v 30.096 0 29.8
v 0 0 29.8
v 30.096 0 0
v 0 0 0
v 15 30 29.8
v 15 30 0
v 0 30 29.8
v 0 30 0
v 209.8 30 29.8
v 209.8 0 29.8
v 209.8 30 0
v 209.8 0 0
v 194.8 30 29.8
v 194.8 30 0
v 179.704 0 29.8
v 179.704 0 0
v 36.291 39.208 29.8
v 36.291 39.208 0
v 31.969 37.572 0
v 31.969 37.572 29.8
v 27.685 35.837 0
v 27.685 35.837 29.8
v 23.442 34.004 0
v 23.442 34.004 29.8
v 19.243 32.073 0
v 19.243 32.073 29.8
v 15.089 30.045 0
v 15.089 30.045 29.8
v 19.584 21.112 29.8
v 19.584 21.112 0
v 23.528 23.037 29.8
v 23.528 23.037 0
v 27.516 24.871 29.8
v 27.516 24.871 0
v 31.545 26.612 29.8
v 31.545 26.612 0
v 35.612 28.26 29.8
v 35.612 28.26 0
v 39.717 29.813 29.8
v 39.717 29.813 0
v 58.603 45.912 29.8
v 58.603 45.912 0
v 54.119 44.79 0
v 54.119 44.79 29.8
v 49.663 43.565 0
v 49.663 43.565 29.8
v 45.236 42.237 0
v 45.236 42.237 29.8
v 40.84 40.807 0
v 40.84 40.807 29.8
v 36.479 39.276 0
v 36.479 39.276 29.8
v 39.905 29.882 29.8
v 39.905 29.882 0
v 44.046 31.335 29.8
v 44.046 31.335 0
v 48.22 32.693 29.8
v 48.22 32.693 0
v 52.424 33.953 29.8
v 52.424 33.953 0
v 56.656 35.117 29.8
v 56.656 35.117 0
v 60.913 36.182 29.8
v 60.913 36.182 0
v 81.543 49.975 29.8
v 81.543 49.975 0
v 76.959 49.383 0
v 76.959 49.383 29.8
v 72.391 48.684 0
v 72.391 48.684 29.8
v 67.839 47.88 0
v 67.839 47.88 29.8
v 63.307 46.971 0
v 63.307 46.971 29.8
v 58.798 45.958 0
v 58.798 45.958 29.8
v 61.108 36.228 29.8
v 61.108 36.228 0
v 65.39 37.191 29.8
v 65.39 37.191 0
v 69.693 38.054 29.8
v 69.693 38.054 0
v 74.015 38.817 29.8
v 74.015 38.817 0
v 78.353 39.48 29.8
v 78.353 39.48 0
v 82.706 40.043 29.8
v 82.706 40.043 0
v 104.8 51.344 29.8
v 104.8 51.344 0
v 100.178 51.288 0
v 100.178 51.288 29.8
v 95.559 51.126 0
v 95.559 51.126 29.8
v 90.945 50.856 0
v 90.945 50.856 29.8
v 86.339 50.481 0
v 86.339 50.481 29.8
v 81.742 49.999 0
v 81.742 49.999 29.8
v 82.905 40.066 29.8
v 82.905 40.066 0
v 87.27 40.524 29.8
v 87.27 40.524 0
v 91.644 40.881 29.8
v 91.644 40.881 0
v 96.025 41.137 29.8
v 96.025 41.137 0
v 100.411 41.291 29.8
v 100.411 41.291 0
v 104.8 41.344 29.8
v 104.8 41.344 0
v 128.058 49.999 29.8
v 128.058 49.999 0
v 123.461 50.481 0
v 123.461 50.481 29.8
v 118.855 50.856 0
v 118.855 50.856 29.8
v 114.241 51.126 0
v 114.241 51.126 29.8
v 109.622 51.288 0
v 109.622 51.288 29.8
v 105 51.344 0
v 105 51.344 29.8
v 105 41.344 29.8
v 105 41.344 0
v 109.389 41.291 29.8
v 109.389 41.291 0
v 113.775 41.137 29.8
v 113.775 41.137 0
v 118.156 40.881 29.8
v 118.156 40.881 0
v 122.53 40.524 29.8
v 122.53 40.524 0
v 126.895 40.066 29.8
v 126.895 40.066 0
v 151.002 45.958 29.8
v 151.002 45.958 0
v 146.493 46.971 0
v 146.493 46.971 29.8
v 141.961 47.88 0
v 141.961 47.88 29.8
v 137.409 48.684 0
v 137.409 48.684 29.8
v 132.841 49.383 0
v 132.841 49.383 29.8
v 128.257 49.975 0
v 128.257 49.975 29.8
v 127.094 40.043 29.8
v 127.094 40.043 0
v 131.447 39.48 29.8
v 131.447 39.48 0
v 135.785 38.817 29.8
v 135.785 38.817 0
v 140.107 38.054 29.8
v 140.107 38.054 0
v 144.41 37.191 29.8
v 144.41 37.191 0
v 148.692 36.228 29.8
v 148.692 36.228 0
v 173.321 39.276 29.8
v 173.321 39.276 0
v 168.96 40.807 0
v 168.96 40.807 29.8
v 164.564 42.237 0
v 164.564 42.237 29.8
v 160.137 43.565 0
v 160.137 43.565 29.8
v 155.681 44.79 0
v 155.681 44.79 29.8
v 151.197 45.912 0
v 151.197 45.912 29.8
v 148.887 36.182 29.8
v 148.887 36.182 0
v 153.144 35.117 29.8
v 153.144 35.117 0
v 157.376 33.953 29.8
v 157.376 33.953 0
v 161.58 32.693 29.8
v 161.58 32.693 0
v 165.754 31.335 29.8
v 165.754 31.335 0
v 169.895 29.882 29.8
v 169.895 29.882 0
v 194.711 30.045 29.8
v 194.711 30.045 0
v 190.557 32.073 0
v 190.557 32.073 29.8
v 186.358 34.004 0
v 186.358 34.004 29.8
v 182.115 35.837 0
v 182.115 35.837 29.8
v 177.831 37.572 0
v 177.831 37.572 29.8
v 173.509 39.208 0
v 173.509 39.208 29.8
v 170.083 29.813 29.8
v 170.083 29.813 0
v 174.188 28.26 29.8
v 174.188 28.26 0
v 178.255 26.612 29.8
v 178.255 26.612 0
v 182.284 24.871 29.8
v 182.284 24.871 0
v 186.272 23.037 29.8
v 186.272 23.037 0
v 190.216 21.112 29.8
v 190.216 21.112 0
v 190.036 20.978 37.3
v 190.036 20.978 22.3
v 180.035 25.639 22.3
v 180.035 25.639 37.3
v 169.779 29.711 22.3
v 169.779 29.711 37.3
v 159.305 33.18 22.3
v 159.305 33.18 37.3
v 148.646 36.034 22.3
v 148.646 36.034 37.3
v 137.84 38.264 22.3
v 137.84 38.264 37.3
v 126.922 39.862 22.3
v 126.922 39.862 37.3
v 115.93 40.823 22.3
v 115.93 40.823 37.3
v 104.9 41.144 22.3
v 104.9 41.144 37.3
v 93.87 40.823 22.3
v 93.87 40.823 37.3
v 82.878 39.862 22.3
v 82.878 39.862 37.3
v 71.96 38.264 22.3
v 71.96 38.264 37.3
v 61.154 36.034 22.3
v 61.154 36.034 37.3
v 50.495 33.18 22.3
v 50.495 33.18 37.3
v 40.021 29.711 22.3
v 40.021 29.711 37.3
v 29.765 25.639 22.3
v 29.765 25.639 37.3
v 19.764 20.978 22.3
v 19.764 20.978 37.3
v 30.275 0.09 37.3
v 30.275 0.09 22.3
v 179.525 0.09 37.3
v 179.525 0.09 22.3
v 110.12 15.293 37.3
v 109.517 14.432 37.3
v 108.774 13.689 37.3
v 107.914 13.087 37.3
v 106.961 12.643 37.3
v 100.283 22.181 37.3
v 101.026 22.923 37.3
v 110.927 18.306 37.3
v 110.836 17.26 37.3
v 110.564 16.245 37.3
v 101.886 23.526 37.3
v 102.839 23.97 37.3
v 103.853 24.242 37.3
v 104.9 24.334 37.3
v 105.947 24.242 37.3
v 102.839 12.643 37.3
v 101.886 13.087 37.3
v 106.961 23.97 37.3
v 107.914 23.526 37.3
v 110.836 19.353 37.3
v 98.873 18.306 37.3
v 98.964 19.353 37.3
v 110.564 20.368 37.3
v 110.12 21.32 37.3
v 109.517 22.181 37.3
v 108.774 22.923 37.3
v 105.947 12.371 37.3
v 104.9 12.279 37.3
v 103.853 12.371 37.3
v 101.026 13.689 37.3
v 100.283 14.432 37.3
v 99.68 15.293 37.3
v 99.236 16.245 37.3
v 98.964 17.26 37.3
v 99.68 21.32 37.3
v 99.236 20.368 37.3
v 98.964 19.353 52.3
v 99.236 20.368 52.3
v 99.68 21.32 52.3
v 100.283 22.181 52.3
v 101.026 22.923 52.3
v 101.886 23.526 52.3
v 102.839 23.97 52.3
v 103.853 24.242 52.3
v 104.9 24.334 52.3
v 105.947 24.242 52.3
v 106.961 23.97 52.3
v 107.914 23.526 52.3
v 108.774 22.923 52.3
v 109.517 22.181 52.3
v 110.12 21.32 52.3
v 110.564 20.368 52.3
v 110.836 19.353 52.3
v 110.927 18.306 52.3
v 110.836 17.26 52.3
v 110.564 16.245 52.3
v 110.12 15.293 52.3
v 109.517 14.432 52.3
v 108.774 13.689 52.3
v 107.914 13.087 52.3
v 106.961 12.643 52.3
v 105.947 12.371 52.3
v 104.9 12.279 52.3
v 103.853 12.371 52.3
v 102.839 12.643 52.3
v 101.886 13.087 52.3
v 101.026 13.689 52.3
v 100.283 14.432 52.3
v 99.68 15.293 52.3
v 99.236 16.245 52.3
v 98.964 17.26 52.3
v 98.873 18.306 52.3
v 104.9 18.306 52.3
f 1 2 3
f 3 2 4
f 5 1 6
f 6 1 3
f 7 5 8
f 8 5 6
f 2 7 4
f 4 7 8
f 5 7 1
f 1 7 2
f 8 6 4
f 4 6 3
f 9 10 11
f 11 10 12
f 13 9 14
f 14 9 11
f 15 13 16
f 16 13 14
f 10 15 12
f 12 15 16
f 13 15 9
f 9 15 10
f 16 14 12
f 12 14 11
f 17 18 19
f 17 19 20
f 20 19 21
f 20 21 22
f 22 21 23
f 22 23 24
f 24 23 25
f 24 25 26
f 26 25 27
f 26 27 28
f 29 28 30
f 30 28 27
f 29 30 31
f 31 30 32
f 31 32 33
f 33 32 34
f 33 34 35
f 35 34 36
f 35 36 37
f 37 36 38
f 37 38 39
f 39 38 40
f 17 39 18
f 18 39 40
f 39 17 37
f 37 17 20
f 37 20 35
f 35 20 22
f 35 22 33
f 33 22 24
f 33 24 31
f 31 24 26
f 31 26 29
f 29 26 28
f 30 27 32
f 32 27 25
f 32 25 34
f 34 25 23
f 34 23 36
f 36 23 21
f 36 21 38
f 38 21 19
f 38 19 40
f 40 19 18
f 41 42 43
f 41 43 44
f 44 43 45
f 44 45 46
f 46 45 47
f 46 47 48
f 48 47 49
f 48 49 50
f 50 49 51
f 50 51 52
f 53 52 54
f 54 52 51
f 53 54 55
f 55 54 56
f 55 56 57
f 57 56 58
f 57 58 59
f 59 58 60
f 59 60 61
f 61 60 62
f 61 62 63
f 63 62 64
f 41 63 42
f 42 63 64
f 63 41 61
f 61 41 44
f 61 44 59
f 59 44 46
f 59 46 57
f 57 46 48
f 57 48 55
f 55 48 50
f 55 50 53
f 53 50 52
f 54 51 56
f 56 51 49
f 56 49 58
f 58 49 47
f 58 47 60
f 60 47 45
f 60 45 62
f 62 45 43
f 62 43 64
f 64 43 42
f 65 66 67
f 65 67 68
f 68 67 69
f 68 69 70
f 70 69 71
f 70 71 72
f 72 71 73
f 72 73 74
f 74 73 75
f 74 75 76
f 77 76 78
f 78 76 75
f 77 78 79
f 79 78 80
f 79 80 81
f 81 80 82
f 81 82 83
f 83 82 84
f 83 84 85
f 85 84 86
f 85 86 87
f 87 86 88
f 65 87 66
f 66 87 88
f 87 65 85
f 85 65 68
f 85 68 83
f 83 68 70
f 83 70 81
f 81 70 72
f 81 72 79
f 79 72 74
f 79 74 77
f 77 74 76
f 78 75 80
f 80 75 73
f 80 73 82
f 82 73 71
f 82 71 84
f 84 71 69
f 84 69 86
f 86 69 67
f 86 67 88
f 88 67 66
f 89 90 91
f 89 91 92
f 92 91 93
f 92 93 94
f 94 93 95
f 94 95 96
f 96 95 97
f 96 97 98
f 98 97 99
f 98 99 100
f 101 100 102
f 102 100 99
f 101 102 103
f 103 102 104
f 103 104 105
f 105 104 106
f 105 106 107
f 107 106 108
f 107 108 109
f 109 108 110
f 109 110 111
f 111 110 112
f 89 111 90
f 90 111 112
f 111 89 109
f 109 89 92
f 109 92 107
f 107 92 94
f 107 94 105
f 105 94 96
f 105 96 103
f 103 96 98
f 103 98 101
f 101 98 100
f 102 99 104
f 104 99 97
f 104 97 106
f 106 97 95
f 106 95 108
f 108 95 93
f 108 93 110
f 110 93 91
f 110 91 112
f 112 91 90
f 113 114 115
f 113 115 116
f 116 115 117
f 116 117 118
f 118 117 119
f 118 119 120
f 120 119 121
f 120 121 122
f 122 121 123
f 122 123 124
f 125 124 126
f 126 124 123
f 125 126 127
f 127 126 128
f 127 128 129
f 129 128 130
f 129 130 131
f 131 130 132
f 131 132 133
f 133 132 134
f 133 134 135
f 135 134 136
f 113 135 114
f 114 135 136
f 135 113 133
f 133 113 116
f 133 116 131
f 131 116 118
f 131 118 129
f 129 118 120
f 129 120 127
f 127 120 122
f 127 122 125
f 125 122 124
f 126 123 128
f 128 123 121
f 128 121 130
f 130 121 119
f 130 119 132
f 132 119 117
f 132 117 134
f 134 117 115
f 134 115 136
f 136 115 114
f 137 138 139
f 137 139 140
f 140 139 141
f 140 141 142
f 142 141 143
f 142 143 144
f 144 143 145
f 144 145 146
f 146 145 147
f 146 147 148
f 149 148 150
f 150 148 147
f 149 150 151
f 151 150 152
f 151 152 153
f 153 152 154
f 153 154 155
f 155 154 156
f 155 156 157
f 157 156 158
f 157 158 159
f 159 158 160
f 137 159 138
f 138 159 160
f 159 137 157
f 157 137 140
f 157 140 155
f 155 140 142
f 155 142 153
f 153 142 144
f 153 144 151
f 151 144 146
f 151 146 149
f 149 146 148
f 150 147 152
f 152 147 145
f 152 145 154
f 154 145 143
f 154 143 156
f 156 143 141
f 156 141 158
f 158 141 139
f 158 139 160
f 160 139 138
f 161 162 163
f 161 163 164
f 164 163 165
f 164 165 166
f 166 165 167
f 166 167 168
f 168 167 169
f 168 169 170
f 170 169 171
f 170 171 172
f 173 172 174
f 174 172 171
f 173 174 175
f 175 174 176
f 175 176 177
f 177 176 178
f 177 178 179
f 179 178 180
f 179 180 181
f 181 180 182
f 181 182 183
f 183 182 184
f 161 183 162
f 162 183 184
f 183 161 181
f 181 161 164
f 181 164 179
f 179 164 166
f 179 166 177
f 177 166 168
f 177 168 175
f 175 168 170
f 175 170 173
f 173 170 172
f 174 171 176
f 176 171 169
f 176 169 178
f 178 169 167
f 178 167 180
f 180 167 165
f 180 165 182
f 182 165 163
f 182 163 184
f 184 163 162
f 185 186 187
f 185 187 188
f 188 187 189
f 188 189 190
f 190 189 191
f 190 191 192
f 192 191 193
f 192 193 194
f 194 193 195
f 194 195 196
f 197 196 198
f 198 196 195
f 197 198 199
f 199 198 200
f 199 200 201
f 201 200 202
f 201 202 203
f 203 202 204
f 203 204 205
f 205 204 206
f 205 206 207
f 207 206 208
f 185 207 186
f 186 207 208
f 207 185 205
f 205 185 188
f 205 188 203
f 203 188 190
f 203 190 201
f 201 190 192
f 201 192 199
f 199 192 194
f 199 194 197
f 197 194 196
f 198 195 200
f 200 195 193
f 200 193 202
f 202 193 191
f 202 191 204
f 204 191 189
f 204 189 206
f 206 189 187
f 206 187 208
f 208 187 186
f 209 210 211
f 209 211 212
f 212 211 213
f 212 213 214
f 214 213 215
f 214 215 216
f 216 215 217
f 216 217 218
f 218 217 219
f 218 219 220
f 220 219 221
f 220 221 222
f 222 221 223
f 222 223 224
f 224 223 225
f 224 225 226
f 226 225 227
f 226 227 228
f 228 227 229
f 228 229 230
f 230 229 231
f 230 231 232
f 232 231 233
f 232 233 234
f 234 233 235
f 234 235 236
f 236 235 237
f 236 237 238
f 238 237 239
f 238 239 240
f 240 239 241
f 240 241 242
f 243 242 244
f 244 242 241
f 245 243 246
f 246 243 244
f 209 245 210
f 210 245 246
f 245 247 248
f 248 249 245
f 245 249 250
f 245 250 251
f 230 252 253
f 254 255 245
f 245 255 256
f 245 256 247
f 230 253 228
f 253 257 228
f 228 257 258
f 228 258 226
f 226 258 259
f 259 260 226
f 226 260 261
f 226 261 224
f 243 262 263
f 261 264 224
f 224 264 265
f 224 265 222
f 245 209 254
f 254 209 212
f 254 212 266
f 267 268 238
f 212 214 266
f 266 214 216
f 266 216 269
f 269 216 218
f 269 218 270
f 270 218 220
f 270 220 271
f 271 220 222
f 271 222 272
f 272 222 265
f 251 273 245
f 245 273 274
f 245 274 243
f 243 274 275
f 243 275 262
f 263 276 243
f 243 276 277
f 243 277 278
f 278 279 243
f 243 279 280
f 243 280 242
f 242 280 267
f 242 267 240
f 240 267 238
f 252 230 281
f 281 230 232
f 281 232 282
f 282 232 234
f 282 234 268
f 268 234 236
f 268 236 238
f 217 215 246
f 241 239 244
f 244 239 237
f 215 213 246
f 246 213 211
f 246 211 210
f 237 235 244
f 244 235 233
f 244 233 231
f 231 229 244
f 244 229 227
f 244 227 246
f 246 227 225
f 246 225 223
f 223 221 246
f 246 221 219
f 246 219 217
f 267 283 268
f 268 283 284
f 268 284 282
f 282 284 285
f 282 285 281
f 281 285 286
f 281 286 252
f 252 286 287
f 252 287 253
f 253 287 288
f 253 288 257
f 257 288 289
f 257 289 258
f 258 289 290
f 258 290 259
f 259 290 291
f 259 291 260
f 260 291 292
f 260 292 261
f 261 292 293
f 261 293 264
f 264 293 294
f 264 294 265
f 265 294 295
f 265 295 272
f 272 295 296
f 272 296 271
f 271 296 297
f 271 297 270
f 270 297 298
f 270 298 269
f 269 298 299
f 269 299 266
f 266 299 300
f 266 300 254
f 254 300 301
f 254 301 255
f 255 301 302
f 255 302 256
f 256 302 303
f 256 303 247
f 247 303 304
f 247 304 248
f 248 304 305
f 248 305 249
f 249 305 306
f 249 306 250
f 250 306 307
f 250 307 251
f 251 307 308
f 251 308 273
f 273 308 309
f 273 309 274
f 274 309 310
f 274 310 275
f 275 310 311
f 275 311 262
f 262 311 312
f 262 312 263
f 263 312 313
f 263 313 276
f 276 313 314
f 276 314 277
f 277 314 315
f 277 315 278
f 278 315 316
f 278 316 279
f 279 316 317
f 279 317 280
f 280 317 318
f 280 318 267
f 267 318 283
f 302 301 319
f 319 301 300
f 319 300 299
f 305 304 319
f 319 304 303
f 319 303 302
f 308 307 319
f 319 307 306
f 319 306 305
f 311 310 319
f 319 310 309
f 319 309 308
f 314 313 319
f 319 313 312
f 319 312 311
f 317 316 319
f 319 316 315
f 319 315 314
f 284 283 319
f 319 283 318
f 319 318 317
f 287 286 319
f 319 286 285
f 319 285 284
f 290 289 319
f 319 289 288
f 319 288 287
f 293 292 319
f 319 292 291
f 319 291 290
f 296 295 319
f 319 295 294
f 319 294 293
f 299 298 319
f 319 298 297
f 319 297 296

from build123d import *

# Parameters (mm, degrees)
BOSS_EXTRUDE1_DEPTH    = 29.8
BOSS_EXTRUDE1_2_DEPTH  = 29.8
BOSS_EXTRUDE1_3_DEPTH  = 29.8
BOSS_EXTRUDE1_4_DEPTH  = 29.8
BOSS_EXTRUDE1_5_DEPTH  = 29.8
BOSS_EXTRUDE1_6_DEPTH  = 29.8
BOSS_EXTRUDE1_7_DEPTH  = 29.8
BOSS_EXTRUDE1_8_DEPTH  = 29.8
BOSS_EXTRUDE1_9_DEPTH  = 29.8
BOSS_EXTRUDE1_10_DEPTH = 29.8
BOSS_EXTRUDE2_DEPTH    = 7.5
SKETCH3_R              = 6.027124085
BOSS_EXTRUDE3_DEPTH    = 15


with BuildPart() as part:
    # Sketch1 → Boss-Extrude1 (new body)
    with BuildSketch(Plane.XY):
        Polygon((0, 0), (0, 30), (15, 30), (30.096044914, 0), align=None)
    extrude(amount=BOSS_EXTRUDE1_DEPTH)


with BuildPart() as body_2:
    # Sketch1 → Boss-Extrude1 2 (new body)
    with BuildSketch(Plane.XY):
        Polygon((179.703955086, 0), (209.8, 0), (209.8, 30), (194.8, 30), align=None)
    extrude(amount=BOSS_EXTRUDE1_2_DEPTH)


with BuildPart() as body_3:
    # Sketch1 → Boss-Extrude1 3 (new body)
    with BuildSketch(Plane.XY):
        with BuildLine():
            Line((15.089339271, 30.044927668), (19.584339271, 21.112124357))
            ThreePointArc((19.584339271, 21.112124357), (29.525121598, 25.753303377), (39.717208561, 29.812990475))
            Line((39.717208561, 29.812990475), (36.291479568, 39.207902974))
            ThreePointArc((36.291479568, 39.207902974), (25.558023285, 34.932742611), (15.089339271, 30.044927668))
        make_face()
    extrude(amount=BOSS_EXTRUDE1_3_DEPTH)


with BuildPart() as body_4:
    # Sketch1 → Boss-Extrude1 4 (new body)
    with BuildSketch(Plane.XY):
        with BuildLine():
            Line((36.479377818, 39.276417553), (39.905106811, 29.881505054))
            ThreePointArc((39.905106811, 29.881505054), (50.318158586, 33.335205782), (60.913189689, 36.182136043))
            Line((60.913189689, 36.182136043), (58.603214918, 45.911679535))
            ThreePointArc((58.603214918, 45.911679535), (47.445430489, 42.913692456), (36.479377818, 39.276417553))
        make_face()
    extrude(amount=BOSS_EXTRUDE1_4_DEPTH)


with BuildPart() as body_5:
    # Sketch1 → Boss-Extrude1 5 (new body)
    with BuildSketch(Plane.XY):
        with BuildLine():
            Line((58.797805788, 45.95787903), (61.107780559, 36.228335538))
            ThreePointArc((61.107780559, 36.228335538), (71.851808604, 38.447695213), (82.706021419, 40.043239056))
            Line((82.706021419, 40.043239056), (81.54314458, 49.975394787))
            ThreePointArc((81.54314458, 49.975394787), (70.11243035, 48.295260241), (58.797805788, 45.95787903))
        make_face()
    extrude(amount=BOSS_EXTRUDE1_5_DEPTH)


with BuildPart() as body_6:
    # Sketch1 → Boss-Extrude1 6 (new body)
    with BuildSketch(Plane.XY):
        with BuildLine():
            Line((81.741787695, 49.998652324), (82.904664533, 40.066496593))
            ThreePointArc((82.904664533, 40.066496593), (93.833884701, 41.021401048), (104.8, 41.343908772))
            Line((104.8, 41.343908772), (104.8, 51.343908772))
            ThreePointArc((104.8, 51.343908772), (93.25145766, 51.004424259), (81.741787695, 49.998652324))
        make_face()
    extrude(amount=BOSS_EXTRUDE1_6_DEPTH)


with BuildPart() as body_7:
    # Sketch1 → Boss-Extrude1 7 (new body)
    with BuildSketch(Plane.XY):
        with BuildLine():
            Line((105, 51.343908772), (105, 41.343908772))
            ThreePointArc((105, 41.343908772), (115.966115299, 41.021401048), (126.895335467, 40.066496593))
            Line((126.895335467, 40.066496593), (128.058212305, 49.998652324))
            ThreePointArc((128.058212305, 49.998652324), (116.54854234, 51.004424259), (105, 51.343908772))
        make_face()
    extrude(amount=BOSS_EXTRUDE1_7_DEPTH)


with BuildPart() as body_8:
    # Sketch1 → Boss-Extrude1 8 (new body)
    with BuildSketch(Plane.XY):
        with BuildLine():
            Line((128.25685542, 49.975394787), (127.093978581, 40.043239056))
            ThreePointArc((127.093978581, 40.043239056), (137.948191396, 38.447695213), (148.692219441, 36.228335538))
            Line((148.692219441, 36.228335538), (151.002194212, 45.95787903))
            ThreePointArc((151.002194212, 45.95787903), (139.68756965, 48.295260241), (128.25685542, 49.975394787))
        make_face()
    extrude(amount=BOSS_EXTRUDE1_8_DEPTH)


with BuildPart() as body_9:
    # Sketch1 → Boss-Extrude1 9 (new body)
    with BuildSketch(Plane.XY):
        with BuildLine():
            Line((151.196785082, 45.911679535), (148.886810311, 36.182136043))
            ThreePointArc((148.886810311, 36.182136043), (159.481841414, 33.335205782), (169.894893189, 29.881505054))
            Line((169.894893189, 29.881505054), (173.320622182, 39.276417553))
            ThreePointArc((173.320622182, 39.276417553), (162.354569511, 42.913692456), (151.196785082, 45.911679535))
        make_face()
    extrude(amount=BOSS_EXTRUDE1_9_DEPTH)


with BuildPart() as body_10:
    # Sketch1 → Boss-Extrude1 10 (new body)
    with BuildSketch(Plane.XY):
        with BuildLine():
            Line((173.508520432, 39.207902974), (170.082791439, 29.812990475))
            ThreePointArc((170.082791439, 29.812990475), (180.274878402, 25.753303377), (190.215660729, 21.112124357))
            Line((190.215660729, 21.112124357), (194.710660729, 30.044927668))
            ThreePointArc((194.710660729, 30.044927668), (184.241976715, 34.932742611), (173.508520432, 39.207902974))
        make_face()
    extrude(amount=BOSS_EXTRUDE1_10_DEPTH)


with BuildPart() as body_11:
    # Sketch2 → Boss-Extrude2 (new, symmetric)
    with BuildSketch(Plane.XY.offset(29.8)):
        with BuildLine():
            Line((30.274700981, 0.0899), (19.76360284, 20.978347669))
            ThreePointArc((19.76360284, 20.978347669), (104.9, 41.143935088), (190.03639716, 20.978347669))
            Line((190.03639716, 20.978347669), (179.525299019, 0.0899))
            Line((179.525299019, 0.0899), (30.274700981, 0.0899))
        make_face()
    extrude(amount=BOSS_EXTRUDE2_DEPTH, both=True)

    # Sketch3 → Boss-Extrude3 (add)
    with BuildSketch(Plane.XY.offset(37.3)):
        with Locations((104.9, 18.306428262)):
            Circle(SKETCH3_R)
    extrude(amount=BOSS_EXTRUDE3_DEPTH)


solid = Compound([part.part, body_2.part, body_3.part, body_4.part, body_5.part, body_6.part, body_7.part, body_8.part, body_9.part, body_10.part, body_11.part])
